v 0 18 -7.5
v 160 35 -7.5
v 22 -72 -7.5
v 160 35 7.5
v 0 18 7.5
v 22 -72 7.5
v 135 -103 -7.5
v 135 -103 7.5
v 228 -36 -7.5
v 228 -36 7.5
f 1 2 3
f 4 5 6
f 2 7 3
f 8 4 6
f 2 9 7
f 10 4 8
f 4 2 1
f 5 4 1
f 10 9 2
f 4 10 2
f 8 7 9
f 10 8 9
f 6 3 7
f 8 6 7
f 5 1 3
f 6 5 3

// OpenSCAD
polyhedron(points=[[22.0, -72.0, -7.5], [0.0, 18.0, -7.5], [160.0, 35.0, -7.5], [22.0, -72.0, 7.5], [0.0, 18.0, 7.5], [160.0, 35.0, 7.5], [135.0, -103.0, -7.5], [135.0, -103.0, 7.5], [228.0, -36.0, -7.5], [228.0, -36.0, 7.5]], faces=[[1, 2, 0], [5, 4, 3], [2, 6, 0], [7, 5, 3], [2, 8, 6], [9, 5, 7], [5, 2, 1], [4, 5, 1], [9, 8, 2], [5, 9, 2], [7, 6, 8], [9, 7, 8], [3, 0, 6], [7, 3, 6], [4, 1, 0], [3, 4, 0]], convexity=20);
